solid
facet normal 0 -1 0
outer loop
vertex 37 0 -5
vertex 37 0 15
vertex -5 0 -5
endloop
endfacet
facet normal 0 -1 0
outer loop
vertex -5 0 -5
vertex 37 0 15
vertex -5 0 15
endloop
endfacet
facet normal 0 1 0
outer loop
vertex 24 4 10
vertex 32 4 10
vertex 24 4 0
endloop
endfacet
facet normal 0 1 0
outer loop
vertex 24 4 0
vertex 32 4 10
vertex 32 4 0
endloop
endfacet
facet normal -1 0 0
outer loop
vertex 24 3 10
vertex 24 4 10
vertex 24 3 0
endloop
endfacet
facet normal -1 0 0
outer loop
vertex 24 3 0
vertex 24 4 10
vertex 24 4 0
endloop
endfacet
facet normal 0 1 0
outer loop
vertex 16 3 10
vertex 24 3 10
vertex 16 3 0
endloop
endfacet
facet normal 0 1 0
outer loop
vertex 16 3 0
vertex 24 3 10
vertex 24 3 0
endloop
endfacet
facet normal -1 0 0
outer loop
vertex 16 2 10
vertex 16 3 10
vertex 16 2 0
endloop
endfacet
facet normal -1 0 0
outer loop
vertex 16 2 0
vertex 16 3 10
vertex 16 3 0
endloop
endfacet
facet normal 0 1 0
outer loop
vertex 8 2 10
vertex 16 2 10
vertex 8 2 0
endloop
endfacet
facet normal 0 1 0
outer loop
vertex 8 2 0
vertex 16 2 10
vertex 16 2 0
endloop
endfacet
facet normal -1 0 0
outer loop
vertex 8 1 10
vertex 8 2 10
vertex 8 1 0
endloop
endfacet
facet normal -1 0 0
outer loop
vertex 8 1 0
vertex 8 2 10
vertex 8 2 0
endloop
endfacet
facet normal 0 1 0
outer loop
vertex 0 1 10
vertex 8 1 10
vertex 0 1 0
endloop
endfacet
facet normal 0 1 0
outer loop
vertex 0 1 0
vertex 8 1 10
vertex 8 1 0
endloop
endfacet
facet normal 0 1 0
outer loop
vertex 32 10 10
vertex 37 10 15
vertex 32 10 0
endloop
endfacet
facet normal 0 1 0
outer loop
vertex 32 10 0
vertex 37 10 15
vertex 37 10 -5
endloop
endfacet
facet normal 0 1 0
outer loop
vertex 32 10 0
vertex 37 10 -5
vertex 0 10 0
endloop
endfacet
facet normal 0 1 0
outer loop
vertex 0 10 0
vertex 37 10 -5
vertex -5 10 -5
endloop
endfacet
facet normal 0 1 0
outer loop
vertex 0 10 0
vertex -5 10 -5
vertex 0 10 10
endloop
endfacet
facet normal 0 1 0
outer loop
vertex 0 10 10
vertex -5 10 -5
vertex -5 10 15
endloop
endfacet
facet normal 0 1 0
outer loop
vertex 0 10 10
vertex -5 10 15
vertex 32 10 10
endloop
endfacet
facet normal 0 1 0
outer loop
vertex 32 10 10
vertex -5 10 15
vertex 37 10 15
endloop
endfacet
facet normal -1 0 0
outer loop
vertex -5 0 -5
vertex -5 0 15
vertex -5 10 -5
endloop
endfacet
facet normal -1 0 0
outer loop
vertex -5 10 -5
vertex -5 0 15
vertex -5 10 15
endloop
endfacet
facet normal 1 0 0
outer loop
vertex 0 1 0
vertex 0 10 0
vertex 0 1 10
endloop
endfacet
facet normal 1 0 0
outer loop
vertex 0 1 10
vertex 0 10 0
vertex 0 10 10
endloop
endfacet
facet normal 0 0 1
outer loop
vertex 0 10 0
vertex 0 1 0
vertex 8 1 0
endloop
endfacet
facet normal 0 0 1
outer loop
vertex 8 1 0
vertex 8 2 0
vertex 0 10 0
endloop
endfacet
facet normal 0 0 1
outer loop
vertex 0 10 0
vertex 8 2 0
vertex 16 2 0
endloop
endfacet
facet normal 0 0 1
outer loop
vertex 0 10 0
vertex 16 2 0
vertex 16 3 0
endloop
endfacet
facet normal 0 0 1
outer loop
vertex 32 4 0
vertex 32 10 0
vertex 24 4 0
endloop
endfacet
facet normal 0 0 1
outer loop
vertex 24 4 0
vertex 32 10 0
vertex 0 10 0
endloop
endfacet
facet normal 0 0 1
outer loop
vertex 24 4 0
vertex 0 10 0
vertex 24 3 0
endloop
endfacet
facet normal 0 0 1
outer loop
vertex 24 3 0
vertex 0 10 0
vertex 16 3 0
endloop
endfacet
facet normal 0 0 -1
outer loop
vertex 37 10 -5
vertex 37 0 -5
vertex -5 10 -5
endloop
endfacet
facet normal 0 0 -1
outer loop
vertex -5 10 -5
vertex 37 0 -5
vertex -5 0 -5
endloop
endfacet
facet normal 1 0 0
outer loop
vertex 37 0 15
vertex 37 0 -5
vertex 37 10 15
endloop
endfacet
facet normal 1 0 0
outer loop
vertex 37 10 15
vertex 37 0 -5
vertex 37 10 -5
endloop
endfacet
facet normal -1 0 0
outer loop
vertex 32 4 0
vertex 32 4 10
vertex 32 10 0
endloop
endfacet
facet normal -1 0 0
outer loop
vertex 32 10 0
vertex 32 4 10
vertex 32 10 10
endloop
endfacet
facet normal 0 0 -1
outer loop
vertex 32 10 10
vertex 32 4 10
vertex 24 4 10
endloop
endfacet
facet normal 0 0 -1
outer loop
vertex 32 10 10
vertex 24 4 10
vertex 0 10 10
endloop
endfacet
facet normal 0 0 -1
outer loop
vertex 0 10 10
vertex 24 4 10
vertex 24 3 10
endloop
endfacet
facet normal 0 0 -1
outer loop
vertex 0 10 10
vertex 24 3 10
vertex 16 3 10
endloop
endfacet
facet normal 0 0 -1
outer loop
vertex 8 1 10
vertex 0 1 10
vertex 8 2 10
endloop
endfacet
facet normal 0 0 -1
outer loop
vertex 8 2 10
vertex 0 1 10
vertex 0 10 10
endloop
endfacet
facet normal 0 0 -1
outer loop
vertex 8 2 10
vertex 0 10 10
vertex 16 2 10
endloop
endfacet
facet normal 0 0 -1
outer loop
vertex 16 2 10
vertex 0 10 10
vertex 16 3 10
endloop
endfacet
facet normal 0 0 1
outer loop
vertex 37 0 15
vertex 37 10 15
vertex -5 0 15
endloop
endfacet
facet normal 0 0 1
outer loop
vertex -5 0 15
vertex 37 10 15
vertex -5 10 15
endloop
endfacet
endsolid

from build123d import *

# Parameters (mm, degrees)
BOSS_EXTRUDE1_DEPTH = 10
SKETCH6_W           = 10
SKETCH6_H           = 10
BOSS_EXTRUDE2_DEPTH = 5
SKETCH7_W           = 37
SKETCH7_H           = 10
BOSS_EXTRUDE3_DEPTH = 5
SKETCH8_W           = 15
SKETCH8_H           = 10
BOSS_EXTRUDE4_DEPTH = 5
SKETCH9_W           = 42
SKETCH9_H           = 10
BOSS_EXTRUDE5_DEPTH = 5


with BuildPart() as part:
    # Sketch3 → Boss-Extrude1 (new body)
    with BuildSketch(Plane.XY):
        Polygon((32, 4), (32, 0), (20, 0), (0, 0), (0, 1), (8, 1), (8, 2), (16, 2), (16, 3), (24, 3), (24, 4), align=None)
    extrude(amount=BOSS_EXTRUDE1_DEPTH)

    # Sketch6 → Boss-Extrude2 (add)
    with BuildSketch(Plane(origin=(0, 0, 0), x_dir=(0, 0, -1), z_dir=(1, 0, 0))):
        with Locations((-5, 5)):
            Rectangle(SKETCH6_W, SKETCH6_H)
    extrude(amount=-BOSS_EXTRUDE2_DEPTH)

    # Sketch7 → Boss-Extrude3 (add)
    with BuildSketch(Plane(origin=(0, 0, 0), x_dir=(-1, 0, 0), z_dir=(0, 0, -1))):
        with Locations((-13.5, 5)):
            Rectangle(SKETCH7_W, SKETCH7_H)
    extrude(amount=BOSS_EXTRUDE3_DEPTH)

    # Sketch8 → Boss-Extrude4 (add)
    with BuildSketch(Plane(origin=(32, 0, 0), x_dir=(0, 0, -1), z_dir=(1, 0, 0))):
        with Locations((-2.5, 5)):
            Rectangle(SKETCH8_W, SKETCH8_H)
    extrude(amount=BOSS_EXTRUDE4_DEPTH)

    # Sketch9 → Boss-Extrude5 (add)
    with BuildSketch(Plane.XY.offset(10)):
        with Locations((16, 5)):
            Rectangle(SKETCH9_W, SKETCH9_H)
    extrude(amount=BOSS_EXTRUDE5_DEPTH)


solid = part.part
